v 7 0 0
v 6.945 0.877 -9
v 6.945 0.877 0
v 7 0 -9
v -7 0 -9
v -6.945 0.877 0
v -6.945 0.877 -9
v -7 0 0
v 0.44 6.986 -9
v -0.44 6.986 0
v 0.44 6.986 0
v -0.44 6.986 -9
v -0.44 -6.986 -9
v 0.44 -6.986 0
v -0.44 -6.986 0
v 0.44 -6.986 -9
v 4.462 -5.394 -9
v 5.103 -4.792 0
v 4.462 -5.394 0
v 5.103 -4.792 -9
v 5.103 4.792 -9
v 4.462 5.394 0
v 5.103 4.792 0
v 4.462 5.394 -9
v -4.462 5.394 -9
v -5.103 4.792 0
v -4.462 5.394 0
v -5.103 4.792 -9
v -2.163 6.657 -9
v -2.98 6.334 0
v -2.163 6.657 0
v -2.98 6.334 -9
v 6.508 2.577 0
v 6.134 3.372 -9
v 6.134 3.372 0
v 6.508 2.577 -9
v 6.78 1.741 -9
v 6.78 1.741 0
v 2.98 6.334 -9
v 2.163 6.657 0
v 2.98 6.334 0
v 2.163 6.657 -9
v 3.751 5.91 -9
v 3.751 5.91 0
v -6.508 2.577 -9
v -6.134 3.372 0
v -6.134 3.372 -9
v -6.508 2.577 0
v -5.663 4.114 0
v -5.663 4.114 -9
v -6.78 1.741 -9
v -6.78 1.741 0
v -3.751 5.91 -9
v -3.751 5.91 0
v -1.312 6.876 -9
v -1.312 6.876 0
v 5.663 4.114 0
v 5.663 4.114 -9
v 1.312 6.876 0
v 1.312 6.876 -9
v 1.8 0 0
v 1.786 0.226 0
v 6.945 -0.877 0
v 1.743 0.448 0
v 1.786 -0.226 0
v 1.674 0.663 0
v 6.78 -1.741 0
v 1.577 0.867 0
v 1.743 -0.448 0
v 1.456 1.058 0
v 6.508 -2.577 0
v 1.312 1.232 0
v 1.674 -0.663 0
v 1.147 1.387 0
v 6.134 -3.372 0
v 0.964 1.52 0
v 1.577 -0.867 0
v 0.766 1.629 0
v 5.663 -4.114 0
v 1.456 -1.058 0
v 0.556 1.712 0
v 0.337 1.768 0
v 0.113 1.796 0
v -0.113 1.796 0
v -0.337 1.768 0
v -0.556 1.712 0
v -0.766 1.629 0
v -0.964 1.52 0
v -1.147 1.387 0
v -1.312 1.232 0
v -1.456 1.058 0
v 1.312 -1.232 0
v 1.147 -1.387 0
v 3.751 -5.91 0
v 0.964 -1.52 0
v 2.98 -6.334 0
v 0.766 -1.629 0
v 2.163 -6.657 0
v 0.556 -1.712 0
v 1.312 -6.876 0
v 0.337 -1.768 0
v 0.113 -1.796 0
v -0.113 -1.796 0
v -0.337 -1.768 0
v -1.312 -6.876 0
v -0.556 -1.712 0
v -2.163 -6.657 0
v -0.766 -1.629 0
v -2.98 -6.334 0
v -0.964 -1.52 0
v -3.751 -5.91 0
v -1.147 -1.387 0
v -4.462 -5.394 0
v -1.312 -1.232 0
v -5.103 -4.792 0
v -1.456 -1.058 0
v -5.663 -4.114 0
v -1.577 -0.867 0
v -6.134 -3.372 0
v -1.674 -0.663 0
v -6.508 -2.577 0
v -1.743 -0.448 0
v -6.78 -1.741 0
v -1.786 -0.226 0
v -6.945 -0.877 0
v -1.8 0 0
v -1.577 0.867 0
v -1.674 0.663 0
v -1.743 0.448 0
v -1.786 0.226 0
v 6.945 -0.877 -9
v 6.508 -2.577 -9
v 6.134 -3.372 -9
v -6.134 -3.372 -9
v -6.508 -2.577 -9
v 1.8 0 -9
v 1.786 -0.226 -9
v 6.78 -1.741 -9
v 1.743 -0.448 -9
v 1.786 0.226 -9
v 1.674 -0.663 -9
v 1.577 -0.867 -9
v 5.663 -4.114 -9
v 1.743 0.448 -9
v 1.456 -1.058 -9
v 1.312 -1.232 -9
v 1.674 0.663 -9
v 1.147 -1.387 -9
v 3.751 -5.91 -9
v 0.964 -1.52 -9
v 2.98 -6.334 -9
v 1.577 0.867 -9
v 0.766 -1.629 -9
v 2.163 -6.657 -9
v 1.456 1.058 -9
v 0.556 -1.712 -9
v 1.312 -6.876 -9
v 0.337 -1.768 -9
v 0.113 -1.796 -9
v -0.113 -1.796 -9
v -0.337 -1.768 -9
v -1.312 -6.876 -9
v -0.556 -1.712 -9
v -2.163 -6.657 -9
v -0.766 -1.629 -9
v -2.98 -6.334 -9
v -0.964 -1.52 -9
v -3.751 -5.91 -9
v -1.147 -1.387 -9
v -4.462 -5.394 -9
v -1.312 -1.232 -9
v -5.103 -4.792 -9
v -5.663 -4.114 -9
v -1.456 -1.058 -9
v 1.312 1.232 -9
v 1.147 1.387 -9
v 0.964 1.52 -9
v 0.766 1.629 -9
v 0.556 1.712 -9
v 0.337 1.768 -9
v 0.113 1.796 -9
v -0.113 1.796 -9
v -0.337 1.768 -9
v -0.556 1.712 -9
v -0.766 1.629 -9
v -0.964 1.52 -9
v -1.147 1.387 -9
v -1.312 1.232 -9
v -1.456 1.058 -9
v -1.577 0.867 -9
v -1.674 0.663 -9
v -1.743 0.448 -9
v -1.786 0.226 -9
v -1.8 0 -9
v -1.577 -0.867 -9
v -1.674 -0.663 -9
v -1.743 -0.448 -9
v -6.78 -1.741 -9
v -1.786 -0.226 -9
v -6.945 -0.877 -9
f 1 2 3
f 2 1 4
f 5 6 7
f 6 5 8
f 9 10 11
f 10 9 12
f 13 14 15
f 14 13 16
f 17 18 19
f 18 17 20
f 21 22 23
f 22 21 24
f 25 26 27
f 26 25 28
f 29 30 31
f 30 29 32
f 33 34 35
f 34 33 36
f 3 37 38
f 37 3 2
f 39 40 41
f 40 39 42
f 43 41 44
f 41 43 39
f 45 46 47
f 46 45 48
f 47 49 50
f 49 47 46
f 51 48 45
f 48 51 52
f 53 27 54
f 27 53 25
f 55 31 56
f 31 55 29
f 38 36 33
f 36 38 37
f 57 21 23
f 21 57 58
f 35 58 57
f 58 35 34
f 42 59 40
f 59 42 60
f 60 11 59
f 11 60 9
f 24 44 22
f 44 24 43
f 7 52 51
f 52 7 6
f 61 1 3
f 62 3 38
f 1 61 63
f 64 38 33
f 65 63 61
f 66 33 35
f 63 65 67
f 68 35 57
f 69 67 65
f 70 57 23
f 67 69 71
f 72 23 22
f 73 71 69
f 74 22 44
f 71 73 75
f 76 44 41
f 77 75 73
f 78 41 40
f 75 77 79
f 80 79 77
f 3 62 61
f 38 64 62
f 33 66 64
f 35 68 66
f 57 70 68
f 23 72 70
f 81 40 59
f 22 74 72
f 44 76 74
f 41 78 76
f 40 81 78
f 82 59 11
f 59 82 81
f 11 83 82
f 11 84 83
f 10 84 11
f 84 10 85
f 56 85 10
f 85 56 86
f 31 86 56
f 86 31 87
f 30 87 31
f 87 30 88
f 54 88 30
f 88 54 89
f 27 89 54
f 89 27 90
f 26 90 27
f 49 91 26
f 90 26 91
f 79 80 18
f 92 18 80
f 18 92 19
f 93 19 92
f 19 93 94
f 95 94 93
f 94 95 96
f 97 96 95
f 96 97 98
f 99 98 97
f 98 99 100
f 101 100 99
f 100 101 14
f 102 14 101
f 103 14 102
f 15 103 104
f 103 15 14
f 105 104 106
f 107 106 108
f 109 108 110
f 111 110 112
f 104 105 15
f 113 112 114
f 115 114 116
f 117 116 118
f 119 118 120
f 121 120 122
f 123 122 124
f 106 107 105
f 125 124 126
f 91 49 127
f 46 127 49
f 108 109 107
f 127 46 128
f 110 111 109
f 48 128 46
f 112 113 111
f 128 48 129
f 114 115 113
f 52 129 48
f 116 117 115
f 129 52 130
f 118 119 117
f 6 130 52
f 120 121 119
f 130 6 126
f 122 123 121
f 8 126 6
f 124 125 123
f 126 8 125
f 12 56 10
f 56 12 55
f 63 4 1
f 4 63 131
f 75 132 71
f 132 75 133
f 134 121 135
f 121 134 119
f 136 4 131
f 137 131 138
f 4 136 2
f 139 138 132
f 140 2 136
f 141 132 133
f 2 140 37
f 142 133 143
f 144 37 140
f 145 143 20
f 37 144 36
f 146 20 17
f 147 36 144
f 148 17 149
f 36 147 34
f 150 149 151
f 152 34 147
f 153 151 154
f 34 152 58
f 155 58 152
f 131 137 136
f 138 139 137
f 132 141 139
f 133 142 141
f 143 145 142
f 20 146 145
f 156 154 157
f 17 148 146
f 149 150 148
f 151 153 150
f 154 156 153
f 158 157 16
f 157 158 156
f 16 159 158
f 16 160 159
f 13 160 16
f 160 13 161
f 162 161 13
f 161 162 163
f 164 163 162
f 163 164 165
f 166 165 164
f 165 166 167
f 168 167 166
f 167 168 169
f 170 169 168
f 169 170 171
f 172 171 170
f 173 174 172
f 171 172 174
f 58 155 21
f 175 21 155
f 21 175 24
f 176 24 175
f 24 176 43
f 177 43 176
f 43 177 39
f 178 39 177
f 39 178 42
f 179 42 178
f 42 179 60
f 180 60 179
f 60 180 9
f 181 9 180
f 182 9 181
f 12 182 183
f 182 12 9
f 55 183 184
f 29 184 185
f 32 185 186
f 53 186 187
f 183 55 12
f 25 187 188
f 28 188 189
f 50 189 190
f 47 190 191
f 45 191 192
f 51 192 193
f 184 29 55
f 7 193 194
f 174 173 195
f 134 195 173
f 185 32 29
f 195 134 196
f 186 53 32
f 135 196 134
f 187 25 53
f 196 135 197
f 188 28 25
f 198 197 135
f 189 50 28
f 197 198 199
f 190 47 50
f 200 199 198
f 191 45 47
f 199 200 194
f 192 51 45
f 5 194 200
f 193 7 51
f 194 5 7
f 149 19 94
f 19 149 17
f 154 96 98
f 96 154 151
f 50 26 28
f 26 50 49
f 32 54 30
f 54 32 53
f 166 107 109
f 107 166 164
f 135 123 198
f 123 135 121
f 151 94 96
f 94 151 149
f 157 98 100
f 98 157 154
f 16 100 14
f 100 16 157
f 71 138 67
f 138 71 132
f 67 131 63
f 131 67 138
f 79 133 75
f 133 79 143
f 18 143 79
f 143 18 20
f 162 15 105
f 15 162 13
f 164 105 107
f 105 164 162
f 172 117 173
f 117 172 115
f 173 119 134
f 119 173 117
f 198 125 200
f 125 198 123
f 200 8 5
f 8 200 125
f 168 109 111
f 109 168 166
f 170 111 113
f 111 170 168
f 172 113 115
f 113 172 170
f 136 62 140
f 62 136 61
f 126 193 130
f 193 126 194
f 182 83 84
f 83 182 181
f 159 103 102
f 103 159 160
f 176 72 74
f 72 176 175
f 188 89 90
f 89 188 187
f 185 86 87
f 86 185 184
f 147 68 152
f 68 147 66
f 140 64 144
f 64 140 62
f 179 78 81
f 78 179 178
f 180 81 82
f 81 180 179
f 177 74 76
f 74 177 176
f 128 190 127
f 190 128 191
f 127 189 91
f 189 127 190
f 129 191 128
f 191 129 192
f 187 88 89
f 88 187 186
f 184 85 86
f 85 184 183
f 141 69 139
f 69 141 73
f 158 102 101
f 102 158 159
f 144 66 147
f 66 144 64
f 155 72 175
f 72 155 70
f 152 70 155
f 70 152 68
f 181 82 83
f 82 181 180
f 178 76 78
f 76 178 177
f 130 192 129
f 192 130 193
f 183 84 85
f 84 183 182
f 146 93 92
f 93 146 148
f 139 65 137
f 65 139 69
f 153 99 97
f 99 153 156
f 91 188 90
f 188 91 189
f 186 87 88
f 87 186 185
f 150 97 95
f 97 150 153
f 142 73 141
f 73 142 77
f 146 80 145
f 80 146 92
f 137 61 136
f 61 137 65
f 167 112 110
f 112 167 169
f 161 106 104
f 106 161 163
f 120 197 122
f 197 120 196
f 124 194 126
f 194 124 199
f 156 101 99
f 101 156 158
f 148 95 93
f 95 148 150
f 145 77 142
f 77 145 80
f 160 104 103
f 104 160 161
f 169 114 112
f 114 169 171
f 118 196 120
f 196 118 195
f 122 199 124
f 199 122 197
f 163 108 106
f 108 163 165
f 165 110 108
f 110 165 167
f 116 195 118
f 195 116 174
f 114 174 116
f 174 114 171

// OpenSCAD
$fn = 50;


difference() {
	union() {
		translate(v = [0, 0, -9.0000000000]) {
			cylinder(h = 9, r = 7.0000000000);
		}
	}
	union() {
		#translate(v = [0, 0, -9]) {
			cylinder(h = 9, r = 1.8000000000);
		}
	}
}
